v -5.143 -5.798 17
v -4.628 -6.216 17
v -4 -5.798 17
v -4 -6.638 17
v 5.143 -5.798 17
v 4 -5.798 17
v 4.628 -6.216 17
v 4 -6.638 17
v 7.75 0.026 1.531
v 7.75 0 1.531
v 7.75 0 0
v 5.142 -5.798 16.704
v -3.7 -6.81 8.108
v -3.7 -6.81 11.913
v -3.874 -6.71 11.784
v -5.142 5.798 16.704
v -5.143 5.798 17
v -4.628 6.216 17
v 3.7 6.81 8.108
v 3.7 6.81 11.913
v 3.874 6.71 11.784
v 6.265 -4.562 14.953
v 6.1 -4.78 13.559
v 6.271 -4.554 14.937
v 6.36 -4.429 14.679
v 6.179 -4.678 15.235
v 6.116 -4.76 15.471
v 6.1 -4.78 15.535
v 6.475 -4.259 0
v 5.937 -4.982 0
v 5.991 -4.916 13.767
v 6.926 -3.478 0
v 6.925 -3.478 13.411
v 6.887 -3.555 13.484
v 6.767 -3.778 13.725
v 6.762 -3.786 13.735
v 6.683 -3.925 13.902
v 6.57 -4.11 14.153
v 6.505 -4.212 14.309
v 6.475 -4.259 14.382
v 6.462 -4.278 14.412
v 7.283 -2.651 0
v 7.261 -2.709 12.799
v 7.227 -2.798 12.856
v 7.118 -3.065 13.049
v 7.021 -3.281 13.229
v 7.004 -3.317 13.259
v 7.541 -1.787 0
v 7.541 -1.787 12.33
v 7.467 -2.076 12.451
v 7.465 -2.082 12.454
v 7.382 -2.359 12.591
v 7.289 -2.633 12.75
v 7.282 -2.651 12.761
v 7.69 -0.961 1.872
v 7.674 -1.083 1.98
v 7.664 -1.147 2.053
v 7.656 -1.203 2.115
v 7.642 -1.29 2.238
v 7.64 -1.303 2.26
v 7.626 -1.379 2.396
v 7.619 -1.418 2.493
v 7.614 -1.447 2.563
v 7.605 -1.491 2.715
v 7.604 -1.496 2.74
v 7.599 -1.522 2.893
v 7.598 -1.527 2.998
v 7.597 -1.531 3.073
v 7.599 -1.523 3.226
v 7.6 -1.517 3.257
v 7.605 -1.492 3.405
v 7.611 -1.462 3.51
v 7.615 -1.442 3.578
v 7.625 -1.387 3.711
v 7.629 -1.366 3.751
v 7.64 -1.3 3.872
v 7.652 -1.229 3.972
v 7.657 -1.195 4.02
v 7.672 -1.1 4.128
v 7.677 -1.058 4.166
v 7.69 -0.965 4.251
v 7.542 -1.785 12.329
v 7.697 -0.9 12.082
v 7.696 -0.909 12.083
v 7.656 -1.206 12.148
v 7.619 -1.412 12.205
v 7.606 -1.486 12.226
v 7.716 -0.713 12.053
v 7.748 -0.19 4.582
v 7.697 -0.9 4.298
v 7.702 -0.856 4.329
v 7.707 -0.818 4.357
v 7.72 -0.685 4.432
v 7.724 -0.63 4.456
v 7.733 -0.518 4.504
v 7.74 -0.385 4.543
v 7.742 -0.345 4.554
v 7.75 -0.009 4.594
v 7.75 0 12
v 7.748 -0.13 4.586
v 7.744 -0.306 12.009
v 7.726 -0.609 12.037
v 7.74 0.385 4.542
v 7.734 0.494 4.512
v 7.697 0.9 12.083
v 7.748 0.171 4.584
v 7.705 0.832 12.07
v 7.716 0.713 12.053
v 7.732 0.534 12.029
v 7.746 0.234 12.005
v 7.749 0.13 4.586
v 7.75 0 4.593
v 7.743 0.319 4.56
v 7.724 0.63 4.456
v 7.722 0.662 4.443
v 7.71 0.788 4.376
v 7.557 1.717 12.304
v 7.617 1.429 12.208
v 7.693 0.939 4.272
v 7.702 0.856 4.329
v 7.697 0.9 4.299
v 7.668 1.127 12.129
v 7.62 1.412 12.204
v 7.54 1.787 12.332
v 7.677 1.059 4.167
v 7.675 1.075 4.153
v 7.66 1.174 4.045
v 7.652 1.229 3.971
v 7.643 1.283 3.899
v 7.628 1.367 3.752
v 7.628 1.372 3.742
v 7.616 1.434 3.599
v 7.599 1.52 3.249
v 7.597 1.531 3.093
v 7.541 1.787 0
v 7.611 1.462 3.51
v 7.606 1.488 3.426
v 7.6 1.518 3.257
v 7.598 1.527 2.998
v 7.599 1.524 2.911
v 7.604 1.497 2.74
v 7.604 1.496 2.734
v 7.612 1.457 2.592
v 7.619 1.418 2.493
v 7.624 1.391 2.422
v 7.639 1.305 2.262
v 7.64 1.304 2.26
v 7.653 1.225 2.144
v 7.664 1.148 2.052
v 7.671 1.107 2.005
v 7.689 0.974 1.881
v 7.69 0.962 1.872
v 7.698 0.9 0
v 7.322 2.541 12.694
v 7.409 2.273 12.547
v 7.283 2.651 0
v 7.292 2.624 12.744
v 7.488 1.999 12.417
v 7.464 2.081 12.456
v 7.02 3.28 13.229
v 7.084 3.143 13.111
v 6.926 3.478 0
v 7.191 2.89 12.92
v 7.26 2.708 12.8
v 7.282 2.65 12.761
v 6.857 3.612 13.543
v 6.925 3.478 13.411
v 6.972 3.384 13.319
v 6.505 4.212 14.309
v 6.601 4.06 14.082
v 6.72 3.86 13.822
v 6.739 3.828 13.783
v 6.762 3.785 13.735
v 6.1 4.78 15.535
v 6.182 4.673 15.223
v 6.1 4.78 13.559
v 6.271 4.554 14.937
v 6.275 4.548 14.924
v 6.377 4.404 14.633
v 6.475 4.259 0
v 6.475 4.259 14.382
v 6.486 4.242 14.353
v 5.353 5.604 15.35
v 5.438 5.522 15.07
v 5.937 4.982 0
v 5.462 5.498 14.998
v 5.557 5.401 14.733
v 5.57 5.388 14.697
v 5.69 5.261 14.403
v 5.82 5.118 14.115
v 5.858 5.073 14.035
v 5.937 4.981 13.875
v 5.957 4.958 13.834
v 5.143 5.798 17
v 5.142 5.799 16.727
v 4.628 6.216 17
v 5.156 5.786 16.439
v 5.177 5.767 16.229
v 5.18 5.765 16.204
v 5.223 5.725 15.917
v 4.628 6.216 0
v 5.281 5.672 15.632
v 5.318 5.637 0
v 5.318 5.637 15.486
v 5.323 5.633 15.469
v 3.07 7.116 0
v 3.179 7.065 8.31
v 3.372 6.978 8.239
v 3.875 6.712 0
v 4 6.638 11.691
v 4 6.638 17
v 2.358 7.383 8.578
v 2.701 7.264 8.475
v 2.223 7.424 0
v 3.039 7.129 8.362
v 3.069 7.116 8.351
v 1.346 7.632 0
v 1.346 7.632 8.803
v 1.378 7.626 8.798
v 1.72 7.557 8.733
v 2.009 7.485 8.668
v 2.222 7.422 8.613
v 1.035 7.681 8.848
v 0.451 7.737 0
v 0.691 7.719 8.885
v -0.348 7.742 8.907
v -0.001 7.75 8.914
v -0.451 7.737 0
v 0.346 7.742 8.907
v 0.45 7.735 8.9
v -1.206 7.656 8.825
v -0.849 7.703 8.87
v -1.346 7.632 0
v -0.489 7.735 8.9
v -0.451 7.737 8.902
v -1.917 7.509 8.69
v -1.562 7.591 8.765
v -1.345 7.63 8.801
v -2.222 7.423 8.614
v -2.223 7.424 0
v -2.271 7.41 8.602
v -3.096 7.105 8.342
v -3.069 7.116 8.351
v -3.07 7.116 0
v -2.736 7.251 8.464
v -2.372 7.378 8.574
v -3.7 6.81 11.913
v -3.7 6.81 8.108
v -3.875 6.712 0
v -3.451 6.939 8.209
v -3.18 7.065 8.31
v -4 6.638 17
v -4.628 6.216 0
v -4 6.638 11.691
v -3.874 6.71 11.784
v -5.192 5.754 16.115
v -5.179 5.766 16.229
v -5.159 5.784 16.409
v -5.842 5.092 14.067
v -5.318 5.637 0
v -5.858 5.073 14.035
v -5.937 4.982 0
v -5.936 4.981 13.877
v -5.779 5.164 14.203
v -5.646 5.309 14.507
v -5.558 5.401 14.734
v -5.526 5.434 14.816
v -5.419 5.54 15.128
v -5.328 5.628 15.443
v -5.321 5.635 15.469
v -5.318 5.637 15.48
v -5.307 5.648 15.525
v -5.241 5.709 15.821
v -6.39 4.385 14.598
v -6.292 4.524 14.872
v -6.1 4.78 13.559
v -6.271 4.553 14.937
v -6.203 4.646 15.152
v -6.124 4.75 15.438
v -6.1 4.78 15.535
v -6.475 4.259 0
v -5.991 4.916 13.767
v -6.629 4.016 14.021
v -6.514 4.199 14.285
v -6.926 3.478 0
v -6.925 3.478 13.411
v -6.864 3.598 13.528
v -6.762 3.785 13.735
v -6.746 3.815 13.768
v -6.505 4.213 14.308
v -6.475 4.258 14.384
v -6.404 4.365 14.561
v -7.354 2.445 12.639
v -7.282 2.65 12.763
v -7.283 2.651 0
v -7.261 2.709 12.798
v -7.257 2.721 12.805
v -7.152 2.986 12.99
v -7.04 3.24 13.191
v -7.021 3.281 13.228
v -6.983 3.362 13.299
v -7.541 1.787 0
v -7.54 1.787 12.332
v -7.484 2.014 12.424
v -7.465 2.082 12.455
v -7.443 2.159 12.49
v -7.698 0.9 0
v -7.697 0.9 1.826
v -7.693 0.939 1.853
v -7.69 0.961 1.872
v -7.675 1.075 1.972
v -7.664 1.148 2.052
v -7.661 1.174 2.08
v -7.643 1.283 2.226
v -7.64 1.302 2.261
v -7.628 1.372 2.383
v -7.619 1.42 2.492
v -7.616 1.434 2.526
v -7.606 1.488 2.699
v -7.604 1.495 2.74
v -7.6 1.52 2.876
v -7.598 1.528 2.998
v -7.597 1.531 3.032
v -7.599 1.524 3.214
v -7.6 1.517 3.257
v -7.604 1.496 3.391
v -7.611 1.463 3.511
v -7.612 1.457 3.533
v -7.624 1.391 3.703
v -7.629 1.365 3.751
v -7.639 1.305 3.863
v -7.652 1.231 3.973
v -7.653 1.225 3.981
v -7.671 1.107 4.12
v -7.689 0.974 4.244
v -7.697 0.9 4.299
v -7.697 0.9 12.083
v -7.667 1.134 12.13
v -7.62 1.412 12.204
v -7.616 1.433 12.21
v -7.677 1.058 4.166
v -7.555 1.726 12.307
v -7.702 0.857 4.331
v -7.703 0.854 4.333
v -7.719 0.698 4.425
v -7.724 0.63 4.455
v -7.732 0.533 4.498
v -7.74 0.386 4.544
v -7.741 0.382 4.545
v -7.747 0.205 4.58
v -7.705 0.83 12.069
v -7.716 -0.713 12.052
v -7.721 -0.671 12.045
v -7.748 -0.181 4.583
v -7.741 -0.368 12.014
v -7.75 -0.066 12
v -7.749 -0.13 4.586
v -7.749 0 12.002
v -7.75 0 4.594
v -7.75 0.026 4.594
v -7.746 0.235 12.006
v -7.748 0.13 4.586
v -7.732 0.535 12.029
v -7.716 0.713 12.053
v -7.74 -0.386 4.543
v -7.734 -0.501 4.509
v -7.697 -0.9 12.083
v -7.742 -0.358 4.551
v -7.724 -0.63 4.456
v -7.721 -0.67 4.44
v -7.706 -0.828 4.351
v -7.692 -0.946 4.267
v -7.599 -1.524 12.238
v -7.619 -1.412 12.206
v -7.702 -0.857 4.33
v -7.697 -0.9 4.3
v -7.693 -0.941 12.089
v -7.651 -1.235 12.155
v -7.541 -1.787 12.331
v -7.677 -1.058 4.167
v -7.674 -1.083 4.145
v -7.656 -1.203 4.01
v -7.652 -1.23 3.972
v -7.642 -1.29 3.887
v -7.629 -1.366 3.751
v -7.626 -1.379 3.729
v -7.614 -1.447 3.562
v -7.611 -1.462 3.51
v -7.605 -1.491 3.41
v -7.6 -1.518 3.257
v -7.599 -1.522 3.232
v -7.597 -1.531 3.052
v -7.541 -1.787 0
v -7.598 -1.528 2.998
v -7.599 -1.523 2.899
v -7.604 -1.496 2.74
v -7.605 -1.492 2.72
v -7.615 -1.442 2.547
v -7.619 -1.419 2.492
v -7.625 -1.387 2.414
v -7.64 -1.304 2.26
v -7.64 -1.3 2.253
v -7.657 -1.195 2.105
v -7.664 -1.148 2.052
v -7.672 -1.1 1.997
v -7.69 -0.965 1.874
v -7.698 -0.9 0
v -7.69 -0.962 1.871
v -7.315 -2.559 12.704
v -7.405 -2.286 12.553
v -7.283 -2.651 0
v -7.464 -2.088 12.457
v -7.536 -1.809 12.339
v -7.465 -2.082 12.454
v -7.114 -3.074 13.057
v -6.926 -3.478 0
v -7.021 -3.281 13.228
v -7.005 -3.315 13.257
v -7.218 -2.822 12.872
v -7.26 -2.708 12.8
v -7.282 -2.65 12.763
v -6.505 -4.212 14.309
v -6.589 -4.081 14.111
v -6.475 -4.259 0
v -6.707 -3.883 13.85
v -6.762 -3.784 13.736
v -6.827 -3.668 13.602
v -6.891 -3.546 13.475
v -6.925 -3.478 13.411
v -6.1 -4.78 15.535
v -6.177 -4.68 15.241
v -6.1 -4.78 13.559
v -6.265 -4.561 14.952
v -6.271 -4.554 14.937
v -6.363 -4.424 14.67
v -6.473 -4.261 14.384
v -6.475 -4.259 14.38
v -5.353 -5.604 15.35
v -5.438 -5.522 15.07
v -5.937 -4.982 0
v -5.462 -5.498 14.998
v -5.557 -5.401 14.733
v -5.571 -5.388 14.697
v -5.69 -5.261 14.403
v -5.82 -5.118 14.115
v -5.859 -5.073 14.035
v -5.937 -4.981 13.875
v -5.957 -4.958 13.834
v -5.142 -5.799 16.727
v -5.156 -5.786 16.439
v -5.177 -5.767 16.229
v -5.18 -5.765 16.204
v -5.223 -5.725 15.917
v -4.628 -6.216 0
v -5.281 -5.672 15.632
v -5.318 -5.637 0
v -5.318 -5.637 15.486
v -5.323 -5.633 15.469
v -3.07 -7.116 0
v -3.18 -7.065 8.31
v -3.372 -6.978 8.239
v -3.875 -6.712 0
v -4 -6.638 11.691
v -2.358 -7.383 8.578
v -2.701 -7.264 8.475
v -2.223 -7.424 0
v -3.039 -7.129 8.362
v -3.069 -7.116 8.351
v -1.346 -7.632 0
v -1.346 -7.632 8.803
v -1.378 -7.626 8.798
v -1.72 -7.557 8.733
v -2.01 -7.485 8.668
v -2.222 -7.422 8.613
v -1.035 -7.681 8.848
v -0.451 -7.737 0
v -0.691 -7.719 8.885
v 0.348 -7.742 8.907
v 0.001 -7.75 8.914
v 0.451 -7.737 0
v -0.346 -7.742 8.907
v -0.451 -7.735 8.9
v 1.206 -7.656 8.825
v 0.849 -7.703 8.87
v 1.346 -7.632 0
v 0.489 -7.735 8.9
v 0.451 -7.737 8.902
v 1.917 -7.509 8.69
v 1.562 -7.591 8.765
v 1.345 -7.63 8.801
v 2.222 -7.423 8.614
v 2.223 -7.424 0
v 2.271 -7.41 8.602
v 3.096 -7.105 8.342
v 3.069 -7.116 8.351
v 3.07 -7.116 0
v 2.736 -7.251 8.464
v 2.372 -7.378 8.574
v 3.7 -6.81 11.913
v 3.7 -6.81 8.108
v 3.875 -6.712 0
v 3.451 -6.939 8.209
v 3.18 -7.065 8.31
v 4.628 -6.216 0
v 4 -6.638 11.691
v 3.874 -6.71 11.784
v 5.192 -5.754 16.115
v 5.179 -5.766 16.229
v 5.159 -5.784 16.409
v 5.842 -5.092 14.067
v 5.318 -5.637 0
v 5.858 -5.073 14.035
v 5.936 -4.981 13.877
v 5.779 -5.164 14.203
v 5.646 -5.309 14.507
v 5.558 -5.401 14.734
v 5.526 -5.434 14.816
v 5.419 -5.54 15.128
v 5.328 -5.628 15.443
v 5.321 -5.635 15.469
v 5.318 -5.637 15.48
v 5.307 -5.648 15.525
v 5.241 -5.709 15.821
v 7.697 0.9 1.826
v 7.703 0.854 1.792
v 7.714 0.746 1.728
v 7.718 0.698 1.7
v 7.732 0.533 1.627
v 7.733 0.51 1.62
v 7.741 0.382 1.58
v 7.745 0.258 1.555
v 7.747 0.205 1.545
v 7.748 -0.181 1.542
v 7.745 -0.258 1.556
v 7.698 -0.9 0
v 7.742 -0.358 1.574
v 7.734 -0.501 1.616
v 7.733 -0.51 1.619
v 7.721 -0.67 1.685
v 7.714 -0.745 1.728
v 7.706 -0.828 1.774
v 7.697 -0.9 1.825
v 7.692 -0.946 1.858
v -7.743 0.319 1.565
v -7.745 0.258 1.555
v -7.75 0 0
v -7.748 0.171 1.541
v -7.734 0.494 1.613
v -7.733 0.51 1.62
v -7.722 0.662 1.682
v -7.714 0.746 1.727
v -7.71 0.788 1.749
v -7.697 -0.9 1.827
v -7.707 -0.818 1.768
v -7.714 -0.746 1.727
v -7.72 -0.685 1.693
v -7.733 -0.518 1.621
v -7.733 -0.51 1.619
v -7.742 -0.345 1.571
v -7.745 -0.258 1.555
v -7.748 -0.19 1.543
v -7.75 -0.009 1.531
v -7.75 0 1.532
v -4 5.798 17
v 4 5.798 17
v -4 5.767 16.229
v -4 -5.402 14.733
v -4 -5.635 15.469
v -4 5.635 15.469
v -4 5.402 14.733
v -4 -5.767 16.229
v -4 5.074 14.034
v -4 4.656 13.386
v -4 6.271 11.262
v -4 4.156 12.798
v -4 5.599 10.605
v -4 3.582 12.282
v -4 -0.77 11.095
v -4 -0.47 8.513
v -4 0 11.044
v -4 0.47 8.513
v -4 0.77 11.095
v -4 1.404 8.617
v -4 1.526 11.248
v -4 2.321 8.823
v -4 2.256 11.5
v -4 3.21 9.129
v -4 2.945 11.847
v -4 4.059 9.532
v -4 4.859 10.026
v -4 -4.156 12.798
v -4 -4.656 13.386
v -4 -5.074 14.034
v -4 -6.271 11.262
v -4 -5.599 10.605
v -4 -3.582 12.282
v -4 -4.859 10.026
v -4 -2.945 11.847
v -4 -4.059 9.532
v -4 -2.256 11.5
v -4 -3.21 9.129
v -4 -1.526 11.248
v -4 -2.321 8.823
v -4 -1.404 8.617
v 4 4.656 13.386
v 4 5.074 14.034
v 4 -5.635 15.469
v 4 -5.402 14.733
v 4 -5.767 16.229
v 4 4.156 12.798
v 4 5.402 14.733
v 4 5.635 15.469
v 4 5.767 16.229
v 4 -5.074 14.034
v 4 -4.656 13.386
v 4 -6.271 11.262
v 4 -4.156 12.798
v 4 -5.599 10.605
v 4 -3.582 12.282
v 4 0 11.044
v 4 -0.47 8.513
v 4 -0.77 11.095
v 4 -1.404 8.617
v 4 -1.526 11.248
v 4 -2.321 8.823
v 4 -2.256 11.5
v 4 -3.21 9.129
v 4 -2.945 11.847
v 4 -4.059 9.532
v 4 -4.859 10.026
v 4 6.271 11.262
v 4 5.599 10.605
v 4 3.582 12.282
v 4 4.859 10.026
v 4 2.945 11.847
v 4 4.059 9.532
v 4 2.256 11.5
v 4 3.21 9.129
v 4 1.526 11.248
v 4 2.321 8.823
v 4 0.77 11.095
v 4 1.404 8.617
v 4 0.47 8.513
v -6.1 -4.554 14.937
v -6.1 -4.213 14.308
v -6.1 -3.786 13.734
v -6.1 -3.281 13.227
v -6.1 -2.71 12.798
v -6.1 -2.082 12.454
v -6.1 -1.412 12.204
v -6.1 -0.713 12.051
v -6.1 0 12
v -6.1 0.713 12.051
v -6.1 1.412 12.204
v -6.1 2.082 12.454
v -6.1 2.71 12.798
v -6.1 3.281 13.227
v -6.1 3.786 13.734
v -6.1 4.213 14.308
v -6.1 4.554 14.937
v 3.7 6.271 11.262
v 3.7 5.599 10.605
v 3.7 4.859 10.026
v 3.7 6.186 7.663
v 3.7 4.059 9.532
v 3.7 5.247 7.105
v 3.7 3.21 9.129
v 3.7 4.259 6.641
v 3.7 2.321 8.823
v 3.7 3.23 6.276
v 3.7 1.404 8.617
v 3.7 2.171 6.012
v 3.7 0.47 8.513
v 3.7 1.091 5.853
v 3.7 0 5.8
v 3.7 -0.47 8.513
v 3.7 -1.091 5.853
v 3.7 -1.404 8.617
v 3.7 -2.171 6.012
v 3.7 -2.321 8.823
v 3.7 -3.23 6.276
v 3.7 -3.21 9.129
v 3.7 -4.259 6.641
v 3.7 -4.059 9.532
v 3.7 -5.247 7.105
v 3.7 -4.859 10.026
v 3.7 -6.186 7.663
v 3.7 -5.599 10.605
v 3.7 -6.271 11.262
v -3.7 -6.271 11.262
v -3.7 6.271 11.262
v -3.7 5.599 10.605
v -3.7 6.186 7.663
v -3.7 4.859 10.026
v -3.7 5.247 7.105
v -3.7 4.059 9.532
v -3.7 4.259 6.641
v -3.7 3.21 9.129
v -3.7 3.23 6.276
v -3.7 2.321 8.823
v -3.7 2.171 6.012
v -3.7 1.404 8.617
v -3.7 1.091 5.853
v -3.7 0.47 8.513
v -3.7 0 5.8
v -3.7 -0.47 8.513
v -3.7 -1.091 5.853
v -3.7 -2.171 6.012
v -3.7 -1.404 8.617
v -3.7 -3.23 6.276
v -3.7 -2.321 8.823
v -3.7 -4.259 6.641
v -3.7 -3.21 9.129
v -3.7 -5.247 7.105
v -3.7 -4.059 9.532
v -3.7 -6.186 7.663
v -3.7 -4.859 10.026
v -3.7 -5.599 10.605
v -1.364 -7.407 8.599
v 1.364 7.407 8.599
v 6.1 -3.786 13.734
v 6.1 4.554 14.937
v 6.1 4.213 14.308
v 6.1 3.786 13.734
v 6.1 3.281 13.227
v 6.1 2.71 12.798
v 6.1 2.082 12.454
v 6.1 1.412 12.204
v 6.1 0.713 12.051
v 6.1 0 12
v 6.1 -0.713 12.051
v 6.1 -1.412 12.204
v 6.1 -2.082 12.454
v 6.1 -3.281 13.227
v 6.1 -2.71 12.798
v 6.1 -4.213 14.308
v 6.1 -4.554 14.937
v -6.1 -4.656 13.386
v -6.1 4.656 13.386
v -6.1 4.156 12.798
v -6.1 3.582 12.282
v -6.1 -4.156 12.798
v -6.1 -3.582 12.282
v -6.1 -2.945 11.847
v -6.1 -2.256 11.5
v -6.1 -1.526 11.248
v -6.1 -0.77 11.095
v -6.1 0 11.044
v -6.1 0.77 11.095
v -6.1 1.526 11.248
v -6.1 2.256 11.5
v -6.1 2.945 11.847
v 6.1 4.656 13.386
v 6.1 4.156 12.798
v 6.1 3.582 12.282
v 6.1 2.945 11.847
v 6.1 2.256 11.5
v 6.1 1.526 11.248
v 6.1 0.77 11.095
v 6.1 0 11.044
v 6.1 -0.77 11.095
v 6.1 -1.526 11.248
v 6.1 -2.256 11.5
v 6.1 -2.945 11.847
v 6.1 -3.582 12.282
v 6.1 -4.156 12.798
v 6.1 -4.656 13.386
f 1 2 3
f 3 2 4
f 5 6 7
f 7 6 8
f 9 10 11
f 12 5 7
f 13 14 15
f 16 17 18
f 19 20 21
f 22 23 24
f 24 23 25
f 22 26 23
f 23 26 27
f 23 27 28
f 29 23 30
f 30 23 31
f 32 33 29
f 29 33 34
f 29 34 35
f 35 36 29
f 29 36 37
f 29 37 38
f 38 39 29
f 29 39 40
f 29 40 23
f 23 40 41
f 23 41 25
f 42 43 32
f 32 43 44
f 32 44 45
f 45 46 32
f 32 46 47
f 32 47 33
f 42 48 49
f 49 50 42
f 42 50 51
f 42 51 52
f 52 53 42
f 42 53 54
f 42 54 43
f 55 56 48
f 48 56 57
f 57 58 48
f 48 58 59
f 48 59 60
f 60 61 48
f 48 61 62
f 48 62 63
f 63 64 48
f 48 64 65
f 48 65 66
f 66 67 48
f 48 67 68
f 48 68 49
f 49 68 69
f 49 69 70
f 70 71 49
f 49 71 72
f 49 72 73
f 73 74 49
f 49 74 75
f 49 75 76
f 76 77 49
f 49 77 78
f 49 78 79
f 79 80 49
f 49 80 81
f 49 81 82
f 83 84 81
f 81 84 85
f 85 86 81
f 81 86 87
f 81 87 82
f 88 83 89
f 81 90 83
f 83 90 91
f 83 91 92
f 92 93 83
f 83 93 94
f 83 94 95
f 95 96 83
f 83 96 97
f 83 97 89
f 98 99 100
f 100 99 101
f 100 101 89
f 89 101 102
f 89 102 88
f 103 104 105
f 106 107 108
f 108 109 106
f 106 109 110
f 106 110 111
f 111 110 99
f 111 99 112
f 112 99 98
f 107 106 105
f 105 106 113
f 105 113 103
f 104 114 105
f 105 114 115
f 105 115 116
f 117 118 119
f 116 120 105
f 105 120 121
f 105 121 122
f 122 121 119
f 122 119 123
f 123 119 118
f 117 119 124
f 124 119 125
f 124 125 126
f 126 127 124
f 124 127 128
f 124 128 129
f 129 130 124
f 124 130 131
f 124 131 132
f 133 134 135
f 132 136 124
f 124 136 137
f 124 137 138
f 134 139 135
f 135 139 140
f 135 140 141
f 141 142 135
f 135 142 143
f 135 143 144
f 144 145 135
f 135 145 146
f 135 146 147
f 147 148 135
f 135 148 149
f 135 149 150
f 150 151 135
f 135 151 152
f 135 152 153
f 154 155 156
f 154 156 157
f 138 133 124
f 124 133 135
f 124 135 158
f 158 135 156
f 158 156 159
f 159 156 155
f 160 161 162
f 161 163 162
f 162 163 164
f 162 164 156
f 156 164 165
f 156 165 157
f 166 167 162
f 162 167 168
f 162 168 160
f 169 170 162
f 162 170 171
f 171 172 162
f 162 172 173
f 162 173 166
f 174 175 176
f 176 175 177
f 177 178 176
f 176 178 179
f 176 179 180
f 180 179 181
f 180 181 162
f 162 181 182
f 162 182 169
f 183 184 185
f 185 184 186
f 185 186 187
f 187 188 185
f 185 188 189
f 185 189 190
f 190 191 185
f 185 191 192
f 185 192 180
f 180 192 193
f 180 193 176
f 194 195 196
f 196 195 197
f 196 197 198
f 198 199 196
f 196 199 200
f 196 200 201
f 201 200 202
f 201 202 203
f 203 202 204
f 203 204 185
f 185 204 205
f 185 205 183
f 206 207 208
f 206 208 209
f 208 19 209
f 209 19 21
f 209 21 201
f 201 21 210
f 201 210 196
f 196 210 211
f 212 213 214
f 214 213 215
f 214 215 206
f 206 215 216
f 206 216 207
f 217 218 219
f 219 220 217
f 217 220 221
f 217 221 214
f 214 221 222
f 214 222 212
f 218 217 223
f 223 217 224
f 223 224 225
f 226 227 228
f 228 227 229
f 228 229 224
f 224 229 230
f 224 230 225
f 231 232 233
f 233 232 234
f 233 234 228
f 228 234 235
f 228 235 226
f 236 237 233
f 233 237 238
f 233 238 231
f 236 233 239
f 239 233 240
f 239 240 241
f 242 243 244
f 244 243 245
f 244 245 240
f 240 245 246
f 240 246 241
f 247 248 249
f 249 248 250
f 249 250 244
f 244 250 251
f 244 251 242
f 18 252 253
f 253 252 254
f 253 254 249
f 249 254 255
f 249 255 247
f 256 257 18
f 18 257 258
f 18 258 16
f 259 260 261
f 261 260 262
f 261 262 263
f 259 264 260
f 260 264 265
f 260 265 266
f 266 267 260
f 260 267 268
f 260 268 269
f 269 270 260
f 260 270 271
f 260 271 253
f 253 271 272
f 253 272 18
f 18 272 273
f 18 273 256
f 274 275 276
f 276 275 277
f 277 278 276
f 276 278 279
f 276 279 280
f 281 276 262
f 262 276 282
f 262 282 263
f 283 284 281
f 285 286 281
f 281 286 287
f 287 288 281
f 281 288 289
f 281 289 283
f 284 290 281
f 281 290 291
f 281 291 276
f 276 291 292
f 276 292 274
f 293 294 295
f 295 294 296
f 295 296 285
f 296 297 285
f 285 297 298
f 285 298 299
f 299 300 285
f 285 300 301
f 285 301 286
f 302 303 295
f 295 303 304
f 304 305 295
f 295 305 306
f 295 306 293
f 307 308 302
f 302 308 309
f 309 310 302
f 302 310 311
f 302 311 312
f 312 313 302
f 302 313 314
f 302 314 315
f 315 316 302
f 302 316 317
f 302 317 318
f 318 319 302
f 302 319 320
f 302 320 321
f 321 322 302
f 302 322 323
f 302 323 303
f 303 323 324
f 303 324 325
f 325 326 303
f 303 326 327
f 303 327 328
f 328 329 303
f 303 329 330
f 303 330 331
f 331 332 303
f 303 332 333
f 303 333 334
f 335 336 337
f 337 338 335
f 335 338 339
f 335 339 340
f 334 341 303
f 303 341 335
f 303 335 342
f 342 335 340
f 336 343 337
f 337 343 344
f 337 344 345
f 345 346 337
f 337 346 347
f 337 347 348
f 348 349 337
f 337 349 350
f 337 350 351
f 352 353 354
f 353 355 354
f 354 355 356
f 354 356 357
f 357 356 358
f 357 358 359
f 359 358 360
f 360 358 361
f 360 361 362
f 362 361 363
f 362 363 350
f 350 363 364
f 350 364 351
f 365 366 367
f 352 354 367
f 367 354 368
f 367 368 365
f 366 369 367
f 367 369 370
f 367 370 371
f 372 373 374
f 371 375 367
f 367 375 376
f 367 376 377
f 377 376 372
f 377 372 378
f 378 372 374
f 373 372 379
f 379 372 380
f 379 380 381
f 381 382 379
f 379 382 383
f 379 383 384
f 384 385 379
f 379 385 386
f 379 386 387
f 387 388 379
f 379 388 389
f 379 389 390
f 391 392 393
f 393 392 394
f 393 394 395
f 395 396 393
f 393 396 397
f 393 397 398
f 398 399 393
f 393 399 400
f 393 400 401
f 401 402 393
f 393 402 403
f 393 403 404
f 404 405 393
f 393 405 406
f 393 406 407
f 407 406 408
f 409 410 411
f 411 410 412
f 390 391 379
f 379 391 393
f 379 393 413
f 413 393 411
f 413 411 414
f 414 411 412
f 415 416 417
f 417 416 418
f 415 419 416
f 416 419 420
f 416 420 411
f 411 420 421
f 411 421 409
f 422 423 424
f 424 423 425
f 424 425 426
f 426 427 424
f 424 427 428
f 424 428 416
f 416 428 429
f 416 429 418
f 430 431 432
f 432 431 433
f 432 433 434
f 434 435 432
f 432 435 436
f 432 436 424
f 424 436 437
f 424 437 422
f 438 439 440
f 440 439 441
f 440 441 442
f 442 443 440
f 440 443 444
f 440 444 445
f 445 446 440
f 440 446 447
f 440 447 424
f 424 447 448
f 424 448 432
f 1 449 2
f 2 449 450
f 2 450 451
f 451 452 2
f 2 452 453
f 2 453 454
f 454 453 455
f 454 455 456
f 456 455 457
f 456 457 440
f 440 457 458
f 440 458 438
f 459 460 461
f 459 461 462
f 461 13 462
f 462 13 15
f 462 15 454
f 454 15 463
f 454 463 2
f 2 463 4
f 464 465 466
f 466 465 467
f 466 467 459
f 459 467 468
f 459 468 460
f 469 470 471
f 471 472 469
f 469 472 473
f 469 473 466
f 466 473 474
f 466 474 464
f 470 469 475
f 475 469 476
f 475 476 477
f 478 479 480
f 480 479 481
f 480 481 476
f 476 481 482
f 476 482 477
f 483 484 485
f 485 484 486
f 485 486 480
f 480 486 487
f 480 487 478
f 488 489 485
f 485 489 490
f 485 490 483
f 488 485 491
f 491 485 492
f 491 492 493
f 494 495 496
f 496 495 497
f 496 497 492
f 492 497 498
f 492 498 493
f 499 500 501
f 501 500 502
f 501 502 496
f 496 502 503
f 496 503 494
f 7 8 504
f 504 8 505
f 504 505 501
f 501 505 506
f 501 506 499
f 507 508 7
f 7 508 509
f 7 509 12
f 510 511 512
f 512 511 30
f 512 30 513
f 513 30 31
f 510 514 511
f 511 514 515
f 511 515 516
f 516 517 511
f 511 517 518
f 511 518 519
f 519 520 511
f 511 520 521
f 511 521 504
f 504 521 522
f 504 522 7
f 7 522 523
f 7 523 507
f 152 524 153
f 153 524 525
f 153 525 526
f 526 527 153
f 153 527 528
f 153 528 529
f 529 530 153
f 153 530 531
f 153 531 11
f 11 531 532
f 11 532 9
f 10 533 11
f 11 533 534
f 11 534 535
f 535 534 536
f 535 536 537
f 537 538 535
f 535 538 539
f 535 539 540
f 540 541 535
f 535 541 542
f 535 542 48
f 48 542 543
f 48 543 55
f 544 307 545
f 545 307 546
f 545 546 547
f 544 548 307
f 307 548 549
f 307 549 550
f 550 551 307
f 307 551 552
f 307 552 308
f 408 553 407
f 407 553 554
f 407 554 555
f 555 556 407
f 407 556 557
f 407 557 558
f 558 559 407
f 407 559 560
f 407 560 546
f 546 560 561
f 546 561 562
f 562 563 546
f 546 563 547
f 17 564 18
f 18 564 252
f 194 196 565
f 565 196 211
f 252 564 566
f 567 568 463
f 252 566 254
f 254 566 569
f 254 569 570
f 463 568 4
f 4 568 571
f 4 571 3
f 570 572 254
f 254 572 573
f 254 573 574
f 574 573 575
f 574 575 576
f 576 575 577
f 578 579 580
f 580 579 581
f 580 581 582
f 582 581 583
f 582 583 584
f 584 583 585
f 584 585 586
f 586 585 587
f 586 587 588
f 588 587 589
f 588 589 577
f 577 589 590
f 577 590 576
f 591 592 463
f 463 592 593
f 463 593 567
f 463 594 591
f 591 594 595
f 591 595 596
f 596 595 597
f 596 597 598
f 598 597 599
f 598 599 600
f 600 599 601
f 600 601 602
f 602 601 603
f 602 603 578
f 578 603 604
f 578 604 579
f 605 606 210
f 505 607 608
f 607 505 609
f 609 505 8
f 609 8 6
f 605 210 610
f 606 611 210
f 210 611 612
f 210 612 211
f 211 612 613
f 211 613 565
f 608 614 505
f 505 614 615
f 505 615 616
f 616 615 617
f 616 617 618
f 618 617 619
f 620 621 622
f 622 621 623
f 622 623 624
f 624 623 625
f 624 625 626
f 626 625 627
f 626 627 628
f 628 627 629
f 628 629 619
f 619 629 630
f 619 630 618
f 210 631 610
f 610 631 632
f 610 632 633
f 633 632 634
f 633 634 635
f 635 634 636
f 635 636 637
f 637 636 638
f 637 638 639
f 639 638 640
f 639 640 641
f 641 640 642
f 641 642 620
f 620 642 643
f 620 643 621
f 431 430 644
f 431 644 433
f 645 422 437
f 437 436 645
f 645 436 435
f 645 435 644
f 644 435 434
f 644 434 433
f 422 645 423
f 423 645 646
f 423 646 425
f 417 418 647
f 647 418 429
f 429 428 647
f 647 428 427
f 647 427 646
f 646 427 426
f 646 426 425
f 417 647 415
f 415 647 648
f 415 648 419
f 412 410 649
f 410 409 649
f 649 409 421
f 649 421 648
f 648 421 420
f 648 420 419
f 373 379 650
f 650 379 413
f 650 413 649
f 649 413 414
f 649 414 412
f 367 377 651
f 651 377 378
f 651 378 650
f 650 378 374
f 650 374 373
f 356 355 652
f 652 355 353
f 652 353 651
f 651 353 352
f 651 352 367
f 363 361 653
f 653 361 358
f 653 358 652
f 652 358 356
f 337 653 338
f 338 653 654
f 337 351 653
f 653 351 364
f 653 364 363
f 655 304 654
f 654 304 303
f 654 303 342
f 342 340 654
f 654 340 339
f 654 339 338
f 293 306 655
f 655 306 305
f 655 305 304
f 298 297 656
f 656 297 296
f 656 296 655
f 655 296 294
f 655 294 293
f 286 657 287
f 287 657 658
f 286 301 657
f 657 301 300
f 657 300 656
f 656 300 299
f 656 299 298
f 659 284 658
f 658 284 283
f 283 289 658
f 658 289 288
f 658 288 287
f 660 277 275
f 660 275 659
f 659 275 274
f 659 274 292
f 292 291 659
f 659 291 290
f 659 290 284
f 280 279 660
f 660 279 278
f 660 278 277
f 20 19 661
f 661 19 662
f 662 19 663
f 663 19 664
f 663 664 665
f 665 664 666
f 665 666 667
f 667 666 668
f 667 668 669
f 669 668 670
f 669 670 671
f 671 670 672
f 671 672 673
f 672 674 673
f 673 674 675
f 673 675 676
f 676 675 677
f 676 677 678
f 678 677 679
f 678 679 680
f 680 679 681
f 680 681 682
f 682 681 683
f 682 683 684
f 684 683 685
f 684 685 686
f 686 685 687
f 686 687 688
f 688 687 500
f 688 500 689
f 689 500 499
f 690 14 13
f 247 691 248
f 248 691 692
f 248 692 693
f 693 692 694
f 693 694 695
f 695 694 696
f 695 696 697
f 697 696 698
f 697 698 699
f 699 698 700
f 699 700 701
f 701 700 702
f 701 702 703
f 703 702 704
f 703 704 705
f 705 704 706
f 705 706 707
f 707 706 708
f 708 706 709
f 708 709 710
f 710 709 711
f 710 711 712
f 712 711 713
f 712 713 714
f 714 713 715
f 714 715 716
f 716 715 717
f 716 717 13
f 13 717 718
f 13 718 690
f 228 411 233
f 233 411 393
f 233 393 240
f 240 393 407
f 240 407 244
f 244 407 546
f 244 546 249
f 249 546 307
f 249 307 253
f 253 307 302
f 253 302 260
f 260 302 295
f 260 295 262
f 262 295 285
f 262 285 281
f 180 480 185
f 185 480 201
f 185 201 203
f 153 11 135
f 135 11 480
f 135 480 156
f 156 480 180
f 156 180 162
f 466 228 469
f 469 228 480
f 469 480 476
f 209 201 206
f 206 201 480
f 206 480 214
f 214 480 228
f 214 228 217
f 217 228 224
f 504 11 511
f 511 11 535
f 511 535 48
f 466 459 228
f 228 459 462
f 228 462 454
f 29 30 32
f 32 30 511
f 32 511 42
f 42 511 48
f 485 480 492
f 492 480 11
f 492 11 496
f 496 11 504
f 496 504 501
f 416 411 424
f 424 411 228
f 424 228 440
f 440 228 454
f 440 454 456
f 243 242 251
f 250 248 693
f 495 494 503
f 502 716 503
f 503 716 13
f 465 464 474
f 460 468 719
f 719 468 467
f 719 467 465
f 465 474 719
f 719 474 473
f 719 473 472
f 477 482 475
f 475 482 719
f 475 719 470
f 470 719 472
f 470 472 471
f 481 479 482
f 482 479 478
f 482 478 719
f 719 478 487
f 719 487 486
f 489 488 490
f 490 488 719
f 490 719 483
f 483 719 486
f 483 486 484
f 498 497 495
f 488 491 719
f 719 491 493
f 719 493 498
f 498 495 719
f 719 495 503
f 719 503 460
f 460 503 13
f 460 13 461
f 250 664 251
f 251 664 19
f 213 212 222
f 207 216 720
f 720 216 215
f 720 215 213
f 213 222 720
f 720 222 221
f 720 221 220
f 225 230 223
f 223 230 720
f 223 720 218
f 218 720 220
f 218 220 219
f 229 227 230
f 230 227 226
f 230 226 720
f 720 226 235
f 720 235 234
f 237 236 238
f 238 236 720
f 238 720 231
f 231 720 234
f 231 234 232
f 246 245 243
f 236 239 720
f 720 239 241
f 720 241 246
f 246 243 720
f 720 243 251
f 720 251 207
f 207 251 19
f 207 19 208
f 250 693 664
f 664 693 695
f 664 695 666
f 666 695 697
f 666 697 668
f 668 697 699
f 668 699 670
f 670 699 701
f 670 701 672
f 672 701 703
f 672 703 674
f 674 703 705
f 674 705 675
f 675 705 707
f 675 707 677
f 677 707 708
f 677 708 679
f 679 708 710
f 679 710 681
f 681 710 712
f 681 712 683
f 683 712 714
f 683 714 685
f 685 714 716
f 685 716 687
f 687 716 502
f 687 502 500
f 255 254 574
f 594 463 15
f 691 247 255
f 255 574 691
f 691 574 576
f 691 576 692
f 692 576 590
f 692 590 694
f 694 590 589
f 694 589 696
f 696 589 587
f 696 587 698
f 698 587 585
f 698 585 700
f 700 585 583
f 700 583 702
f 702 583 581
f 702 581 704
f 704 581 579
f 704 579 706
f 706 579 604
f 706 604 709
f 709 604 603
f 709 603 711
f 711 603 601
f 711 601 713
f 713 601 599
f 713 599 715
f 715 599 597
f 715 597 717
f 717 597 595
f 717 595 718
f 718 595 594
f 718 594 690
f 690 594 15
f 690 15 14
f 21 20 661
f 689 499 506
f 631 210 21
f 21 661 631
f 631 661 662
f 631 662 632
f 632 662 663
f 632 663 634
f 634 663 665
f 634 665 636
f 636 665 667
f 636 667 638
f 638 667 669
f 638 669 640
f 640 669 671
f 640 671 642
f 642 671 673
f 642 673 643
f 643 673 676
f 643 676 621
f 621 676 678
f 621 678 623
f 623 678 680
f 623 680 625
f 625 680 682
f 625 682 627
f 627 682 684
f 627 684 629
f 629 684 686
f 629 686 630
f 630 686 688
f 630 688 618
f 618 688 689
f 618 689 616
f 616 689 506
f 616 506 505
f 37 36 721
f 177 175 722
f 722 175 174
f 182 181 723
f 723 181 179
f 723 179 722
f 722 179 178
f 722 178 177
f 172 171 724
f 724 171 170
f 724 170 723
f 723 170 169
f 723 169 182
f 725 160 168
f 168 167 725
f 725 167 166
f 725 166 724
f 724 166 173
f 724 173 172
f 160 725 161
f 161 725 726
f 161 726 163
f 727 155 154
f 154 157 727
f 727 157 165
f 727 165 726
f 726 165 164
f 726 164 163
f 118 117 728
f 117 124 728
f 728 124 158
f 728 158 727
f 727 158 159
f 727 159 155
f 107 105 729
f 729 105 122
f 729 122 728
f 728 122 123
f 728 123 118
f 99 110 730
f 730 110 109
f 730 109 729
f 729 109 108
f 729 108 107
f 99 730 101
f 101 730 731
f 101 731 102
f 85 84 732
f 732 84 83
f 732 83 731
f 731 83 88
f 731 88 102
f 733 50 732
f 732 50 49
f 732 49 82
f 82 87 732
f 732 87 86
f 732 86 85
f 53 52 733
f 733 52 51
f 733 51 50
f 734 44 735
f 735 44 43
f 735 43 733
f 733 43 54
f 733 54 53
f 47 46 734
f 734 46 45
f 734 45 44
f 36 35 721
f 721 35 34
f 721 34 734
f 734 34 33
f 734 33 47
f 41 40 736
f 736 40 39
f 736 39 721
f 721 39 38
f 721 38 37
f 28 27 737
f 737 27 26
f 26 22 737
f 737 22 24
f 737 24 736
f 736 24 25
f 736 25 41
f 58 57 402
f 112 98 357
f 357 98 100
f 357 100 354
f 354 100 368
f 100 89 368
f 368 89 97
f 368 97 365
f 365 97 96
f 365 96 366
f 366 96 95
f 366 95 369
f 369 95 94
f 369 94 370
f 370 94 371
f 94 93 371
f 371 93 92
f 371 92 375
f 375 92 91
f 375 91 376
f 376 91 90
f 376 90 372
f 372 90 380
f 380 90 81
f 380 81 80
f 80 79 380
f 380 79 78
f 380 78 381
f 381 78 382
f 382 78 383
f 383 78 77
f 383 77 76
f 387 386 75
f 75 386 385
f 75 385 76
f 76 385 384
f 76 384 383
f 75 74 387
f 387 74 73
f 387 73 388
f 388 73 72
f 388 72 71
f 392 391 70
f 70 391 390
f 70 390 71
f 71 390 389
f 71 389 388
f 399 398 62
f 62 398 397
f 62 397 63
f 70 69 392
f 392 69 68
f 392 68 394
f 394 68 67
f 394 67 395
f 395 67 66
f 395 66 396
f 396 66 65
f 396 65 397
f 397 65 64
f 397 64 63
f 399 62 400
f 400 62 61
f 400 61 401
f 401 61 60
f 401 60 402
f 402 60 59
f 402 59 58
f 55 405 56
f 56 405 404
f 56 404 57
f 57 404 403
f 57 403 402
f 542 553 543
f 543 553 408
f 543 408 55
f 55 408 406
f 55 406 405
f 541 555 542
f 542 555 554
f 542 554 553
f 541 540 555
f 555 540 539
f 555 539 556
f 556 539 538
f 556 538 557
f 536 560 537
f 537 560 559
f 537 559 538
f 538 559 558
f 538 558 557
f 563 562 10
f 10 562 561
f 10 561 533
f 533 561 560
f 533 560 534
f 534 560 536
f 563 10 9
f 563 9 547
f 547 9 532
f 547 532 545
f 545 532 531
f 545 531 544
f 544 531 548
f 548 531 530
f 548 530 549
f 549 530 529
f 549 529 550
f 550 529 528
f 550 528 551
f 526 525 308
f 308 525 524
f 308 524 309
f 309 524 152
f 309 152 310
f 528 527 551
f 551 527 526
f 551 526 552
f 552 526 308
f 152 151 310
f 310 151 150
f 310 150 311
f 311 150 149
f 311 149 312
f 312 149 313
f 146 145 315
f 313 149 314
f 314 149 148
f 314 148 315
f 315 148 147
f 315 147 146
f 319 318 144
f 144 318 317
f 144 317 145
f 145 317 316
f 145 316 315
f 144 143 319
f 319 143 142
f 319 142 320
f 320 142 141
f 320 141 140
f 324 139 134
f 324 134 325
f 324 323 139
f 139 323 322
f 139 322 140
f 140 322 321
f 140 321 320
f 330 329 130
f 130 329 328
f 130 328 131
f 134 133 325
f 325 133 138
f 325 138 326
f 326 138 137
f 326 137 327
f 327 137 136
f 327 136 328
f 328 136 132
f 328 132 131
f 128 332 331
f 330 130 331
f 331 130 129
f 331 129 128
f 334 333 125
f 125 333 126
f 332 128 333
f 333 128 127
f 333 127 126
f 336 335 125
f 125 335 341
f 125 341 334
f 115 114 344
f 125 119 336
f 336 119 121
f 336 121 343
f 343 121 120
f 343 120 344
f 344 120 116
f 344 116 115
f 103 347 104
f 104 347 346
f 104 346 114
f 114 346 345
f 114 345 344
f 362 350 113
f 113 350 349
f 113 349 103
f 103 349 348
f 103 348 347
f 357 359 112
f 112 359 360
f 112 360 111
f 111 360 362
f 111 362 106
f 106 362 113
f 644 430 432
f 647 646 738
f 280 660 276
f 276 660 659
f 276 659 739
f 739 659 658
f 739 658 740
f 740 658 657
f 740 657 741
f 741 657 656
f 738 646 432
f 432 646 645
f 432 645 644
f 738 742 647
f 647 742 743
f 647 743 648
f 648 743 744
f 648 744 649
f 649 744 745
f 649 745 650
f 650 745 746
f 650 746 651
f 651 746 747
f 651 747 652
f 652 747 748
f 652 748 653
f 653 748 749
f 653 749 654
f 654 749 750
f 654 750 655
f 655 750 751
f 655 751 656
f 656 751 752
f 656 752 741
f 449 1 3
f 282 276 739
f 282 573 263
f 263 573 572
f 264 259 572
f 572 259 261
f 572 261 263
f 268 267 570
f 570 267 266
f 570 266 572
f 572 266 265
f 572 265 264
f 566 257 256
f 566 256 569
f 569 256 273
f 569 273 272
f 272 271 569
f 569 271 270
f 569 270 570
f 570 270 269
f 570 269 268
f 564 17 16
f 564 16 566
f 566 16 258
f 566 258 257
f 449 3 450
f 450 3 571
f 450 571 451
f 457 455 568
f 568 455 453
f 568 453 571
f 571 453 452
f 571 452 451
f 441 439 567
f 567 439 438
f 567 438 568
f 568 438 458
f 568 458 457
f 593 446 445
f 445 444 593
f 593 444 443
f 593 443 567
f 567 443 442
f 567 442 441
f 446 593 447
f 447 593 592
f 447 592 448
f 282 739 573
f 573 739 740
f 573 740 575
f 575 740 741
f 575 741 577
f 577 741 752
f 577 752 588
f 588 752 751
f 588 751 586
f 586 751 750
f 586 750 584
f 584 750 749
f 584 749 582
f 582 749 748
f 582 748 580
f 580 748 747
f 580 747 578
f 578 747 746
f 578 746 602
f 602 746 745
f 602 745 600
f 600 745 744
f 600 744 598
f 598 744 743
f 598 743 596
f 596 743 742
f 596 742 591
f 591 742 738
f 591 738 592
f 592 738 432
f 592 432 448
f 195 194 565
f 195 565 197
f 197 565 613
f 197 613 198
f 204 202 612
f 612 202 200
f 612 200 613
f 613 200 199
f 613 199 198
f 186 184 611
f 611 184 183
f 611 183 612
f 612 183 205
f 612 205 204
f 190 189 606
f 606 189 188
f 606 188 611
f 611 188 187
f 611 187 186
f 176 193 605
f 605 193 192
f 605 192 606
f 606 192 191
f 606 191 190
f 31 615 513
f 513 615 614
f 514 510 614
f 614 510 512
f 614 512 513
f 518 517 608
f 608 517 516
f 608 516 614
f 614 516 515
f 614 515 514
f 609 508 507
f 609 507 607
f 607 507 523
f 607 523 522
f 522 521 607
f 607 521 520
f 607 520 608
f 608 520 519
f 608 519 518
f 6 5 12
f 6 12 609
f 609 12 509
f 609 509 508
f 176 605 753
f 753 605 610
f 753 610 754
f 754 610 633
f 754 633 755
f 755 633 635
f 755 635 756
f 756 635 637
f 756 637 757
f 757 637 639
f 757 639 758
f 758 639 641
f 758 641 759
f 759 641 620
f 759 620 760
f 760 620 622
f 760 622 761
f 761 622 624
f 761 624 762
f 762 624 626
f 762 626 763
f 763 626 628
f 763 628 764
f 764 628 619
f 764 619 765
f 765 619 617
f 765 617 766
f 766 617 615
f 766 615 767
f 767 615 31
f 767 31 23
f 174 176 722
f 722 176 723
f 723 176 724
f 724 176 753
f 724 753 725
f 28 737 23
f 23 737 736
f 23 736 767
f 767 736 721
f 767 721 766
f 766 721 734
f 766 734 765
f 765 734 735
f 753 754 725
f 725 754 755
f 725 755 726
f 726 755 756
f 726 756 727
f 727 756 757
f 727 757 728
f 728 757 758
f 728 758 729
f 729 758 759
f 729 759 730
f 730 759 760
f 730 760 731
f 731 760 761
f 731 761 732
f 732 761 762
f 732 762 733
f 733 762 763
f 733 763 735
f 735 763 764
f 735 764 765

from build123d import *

# Parameters (mm, degrees)
SKETCH1_R           = 7.75
EXTRUDE1_DEPTH      = 17
EXTRUDE2_DEPTH      = 3.7
EXTRUDE2_DEPTH_BACK = 3.7
SKETCH3_R           = 8.5
EXTRUDE3_DEPTH      = 4
EXTRUDE3_DEPTH_BACK = 4
SKETCH4_R           = 5
SKETCH4_R_2         = 1.53125
EXTRUDE4_DEPTH      = 8.7500001
EXTRUDE4_DEPTH_BACK = 8.7500001
SKETCH5_R           = 5.8
EXTRUDE5_DEPTH      = 6.1
EXTRUDE5_DEPTH_BACK = 6.1


with BuildPart() as part:
    # Sketch1 → Extrude1 (new body)
    with BuildSketch(Plane.XY):
        Circle(SKETCH1_R)
    extrude(amount=EXTRUDE1_DEPTH)

    # Sketch2 → Extrude2 (cut, two sides)
    with BuildSketch(Plane(origin=(0, 0, 0), x_dir=(0, 0, -1), z_dir=(1, 0, 0))) as extrude2_sk:
        with BuildLine():
            Line((-17, 7.75), (-17, -7.81981982))
            Line((-17, -7.81981982), (-8.981869421, -7.81981982))
            ThreePointArc((-8.981869421, -7.81981982), (-5.800105265, -0.048558495), (-8.914364589, 7.75))
            Line((-8.914364589, 7.75), (-17, 7.75))
        make_face()
    extrude(amount=EXTRUDE2_DEPTH, mode=Mode.SUBTRACT)
    extrude(extrude2_sk.sketch, amount=-EXTRUDE2_DEPTH_BACK, mode=Mode.SUBTRACT)

    # Sketch3 → Extrude3 (cut, two sides)
    with BuildSketch(Plane(origin=(0, 0, 0), x_dir=(0, 0, -1), z_dir=(1, 0, 0))) as extrude3_sk:
        with Locations((-17, 0)):
            Circle(SKETCH3_R)
    extrude(amount=EXTRUDE3_DEPTH, mode=Mode.SUBTRACT)
    extrude(extrude3_sk.sketch, amount=-EXTRUDE3_DEPTH_BACK, mode=Mode.SUBTRACT)

    # Sketch4 → Extrude4 (cut, two sides)
    with BuildSketch(Plane(origin=(0, 0, 0), x_dir=(0, 0, -1), z_dir=(1, 0, 0))) as extrude4_sk:
        with Locations((-17, 0)):
            Circle(SKETCH4_R)
        with Locations((-3.0625, 0)):
            Circle(SKETCH4_R_2)
    extrude(amount=EXTRUDE4_DEPTH, mode=Mode.SUBTRACT)
    extrude(extrude4_sk.sketch, amount=-EXTRUDE4_DEPTH_BACK, mode=Mode.SUBTRACT)

    # Sketch5 → Extrude5 (cut, two sides)
    with BuildSketch(Plane(origin=(0, 0, 0), x_dir=(0, 0, -1), z_dir=(1, 0, 0))) as extrude5_sk:
        with Locations((-16.84375, 0)):
            Circle(SKETCH5_R)
    extrude(amount=EXTRUDE5_DEPTH, mode=Mode.SUBTRACT)
    extrude(extrude5_sk.sketch, amount=-EXTRUDE5_DEPTH_BACK, mode=Mode.SUBTRACT)


solid = part.part
